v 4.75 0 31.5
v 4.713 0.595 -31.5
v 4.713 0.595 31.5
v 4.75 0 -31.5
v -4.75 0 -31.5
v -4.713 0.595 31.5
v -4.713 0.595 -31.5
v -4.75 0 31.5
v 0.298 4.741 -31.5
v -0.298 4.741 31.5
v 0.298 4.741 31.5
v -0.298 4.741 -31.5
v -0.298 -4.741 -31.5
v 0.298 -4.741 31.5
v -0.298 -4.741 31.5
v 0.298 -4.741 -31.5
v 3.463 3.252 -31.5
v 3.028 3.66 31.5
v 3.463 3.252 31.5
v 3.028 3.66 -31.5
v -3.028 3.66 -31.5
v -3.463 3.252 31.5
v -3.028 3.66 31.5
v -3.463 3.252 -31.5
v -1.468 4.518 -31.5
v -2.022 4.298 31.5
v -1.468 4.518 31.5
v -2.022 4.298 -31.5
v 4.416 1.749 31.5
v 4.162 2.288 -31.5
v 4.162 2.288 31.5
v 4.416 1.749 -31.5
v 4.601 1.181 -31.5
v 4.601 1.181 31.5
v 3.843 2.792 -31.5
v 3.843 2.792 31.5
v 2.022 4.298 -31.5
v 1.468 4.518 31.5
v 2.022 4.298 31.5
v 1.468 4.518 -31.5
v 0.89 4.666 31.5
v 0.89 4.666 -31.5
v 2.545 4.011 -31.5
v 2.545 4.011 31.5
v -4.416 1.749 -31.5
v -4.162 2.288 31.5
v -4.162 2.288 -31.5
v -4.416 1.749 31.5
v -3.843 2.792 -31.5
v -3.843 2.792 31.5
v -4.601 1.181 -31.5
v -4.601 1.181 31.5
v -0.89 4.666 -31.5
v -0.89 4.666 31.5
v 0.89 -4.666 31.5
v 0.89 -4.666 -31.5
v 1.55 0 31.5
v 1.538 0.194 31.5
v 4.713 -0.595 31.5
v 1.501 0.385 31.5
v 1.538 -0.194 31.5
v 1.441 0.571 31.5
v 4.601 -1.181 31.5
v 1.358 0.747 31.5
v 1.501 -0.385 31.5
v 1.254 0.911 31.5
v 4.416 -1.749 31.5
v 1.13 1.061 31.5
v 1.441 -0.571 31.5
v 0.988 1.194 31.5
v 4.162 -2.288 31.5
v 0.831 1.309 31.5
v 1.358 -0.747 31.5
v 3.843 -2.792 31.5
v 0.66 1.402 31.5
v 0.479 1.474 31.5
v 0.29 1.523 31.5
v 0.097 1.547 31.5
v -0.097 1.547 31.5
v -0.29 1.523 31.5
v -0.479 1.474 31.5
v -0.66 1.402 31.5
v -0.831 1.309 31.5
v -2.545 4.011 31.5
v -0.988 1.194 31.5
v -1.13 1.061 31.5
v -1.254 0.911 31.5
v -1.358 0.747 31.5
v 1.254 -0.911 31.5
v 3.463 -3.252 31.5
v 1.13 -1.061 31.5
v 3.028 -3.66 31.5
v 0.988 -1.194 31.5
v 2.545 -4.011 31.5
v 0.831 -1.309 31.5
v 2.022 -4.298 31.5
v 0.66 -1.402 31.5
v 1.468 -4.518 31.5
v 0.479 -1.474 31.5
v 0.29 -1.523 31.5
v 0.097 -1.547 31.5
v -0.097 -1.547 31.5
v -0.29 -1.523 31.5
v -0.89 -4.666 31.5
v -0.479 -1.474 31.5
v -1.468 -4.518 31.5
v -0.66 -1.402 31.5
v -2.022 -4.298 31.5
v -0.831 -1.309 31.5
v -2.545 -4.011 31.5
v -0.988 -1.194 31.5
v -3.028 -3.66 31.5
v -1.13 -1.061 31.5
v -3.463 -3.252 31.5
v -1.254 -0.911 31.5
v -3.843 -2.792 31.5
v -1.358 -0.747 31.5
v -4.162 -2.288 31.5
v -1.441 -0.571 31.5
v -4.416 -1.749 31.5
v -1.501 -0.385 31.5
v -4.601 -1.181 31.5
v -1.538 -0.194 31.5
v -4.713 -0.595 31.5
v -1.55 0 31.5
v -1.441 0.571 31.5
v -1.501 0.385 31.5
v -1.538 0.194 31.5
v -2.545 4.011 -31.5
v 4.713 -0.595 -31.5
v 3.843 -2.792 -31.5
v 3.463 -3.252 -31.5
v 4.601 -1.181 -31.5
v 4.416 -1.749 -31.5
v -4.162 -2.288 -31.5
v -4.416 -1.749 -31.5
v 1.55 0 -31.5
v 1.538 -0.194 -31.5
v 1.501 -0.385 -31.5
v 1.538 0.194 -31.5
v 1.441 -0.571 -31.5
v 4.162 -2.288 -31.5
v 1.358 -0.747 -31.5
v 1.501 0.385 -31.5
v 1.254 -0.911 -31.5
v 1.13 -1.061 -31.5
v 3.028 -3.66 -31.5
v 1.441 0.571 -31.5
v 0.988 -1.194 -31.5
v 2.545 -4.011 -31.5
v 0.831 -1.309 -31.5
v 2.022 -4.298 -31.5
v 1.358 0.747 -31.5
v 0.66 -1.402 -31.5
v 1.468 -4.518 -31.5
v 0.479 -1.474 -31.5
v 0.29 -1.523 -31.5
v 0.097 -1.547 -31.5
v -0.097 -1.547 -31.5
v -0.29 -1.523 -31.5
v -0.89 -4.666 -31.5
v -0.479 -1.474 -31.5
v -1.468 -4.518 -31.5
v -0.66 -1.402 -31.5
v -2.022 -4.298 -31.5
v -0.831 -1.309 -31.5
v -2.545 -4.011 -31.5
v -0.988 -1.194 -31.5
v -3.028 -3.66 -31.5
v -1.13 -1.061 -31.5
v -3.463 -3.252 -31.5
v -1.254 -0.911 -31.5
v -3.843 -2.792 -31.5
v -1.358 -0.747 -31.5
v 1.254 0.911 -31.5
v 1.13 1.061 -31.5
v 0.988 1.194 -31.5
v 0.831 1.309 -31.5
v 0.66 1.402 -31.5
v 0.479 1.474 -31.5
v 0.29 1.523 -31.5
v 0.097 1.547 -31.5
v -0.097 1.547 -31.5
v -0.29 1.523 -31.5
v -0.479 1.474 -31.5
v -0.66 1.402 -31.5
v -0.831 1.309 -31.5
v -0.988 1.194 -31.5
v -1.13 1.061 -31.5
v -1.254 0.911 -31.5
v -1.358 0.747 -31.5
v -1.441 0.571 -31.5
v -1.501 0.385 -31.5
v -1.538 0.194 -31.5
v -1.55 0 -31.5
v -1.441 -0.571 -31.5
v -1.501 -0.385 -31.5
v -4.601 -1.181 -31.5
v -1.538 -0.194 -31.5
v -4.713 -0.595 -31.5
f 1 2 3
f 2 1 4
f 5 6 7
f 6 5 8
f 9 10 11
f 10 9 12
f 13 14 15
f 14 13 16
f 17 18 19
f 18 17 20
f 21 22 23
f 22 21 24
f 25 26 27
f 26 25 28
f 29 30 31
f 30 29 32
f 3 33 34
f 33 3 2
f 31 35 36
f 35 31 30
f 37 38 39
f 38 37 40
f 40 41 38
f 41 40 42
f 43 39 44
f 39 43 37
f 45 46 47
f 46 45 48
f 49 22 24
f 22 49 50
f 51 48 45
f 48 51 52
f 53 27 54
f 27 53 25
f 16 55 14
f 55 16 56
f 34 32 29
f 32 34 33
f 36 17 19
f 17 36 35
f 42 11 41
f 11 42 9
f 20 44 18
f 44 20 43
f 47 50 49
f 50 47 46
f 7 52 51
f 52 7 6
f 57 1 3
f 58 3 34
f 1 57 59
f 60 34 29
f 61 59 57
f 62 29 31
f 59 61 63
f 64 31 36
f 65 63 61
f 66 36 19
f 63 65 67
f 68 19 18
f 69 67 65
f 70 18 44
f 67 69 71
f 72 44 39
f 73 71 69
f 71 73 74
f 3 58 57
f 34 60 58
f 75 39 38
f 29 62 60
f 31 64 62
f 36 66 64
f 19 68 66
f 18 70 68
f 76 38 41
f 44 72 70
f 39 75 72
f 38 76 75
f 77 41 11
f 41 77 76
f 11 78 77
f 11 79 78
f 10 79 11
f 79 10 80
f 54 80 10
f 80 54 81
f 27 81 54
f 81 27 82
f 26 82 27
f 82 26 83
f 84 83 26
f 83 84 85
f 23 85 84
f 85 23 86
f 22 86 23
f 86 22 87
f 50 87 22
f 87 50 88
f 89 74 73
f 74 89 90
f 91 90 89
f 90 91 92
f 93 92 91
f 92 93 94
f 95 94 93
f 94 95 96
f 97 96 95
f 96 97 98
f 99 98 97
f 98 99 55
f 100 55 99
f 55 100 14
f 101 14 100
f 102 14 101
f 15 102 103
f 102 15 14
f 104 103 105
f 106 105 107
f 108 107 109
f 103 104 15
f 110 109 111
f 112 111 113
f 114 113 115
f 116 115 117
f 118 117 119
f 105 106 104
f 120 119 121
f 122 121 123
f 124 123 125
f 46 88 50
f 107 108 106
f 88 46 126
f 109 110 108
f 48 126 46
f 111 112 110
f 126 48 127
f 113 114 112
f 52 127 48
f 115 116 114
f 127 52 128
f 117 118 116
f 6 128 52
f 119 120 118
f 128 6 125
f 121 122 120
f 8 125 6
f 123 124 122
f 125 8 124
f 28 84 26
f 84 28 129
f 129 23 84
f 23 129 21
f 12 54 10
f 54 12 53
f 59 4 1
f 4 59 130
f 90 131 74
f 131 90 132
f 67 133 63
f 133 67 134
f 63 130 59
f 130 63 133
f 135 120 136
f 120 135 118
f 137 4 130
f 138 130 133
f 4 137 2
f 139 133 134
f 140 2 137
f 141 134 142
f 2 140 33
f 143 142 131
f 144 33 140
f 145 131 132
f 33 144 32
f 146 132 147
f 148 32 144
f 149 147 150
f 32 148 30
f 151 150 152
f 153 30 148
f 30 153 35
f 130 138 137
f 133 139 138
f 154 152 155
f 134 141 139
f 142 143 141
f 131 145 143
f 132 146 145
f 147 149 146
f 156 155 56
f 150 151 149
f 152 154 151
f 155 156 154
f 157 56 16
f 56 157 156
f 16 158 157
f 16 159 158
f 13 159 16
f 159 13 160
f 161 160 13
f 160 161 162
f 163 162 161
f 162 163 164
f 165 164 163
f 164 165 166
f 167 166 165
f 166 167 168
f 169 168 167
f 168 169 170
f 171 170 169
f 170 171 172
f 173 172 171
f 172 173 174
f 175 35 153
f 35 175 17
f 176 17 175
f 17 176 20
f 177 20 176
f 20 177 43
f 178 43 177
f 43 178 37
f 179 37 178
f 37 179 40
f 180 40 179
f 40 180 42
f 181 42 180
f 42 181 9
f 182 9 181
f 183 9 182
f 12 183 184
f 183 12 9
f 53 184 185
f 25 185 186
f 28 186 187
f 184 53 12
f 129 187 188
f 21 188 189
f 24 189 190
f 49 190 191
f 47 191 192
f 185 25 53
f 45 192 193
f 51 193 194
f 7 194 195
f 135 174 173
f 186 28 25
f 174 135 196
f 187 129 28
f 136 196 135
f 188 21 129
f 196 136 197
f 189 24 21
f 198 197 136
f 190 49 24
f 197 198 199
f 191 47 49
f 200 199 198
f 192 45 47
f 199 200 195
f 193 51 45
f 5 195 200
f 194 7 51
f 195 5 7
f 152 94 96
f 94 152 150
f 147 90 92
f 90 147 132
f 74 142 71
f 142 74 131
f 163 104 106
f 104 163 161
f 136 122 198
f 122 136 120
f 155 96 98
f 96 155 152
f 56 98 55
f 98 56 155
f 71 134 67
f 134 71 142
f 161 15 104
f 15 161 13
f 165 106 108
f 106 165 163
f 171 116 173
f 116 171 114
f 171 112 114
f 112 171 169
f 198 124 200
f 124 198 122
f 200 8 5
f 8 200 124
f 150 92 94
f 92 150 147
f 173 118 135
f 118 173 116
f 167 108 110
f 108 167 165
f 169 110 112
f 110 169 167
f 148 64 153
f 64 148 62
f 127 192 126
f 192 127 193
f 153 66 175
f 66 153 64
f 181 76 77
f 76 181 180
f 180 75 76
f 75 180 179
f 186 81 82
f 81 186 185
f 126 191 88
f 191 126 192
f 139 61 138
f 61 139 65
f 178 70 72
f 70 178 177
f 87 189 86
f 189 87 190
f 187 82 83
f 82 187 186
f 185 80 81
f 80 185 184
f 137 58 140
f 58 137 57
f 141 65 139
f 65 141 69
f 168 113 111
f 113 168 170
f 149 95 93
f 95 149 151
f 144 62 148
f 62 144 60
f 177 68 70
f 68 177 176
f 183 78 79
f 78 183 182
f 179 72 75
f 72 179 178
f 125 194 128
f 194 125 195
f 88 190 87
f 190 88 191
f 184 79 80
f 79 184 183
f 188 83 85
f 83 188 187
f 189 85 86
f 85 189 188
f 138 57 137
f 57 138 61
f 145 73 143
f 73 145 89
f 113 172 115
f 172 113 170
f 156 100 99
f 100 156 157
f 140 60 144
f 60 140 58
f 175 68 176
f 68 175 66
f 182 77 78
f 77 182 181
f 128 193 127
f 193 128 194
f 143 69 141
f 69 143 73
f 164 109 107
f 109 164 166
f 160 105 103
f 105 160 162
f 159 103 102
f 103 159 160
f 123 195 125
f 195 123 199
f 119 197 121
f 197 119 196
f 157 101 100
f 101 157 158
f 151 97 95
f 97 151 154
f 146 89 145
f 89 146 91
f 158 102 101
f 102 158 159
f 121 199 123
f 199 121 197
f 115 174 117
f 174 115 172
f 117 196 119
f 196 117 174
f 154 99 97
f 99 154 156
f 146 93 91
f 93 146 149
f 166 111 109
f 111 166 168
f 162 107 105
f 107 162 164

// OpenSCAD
$fn = 50;


difference() {
	union() {
		translate(v = [0, 0, -31.5000000000]) {
			cylinder(h = 63, r = 4.7500000000);
		}
	}
	union() {
		translate(v = [0, 0, -100.0000000000]) {
			cylinder(h = 200, r = 1.5500000000);
		}
	}
}
